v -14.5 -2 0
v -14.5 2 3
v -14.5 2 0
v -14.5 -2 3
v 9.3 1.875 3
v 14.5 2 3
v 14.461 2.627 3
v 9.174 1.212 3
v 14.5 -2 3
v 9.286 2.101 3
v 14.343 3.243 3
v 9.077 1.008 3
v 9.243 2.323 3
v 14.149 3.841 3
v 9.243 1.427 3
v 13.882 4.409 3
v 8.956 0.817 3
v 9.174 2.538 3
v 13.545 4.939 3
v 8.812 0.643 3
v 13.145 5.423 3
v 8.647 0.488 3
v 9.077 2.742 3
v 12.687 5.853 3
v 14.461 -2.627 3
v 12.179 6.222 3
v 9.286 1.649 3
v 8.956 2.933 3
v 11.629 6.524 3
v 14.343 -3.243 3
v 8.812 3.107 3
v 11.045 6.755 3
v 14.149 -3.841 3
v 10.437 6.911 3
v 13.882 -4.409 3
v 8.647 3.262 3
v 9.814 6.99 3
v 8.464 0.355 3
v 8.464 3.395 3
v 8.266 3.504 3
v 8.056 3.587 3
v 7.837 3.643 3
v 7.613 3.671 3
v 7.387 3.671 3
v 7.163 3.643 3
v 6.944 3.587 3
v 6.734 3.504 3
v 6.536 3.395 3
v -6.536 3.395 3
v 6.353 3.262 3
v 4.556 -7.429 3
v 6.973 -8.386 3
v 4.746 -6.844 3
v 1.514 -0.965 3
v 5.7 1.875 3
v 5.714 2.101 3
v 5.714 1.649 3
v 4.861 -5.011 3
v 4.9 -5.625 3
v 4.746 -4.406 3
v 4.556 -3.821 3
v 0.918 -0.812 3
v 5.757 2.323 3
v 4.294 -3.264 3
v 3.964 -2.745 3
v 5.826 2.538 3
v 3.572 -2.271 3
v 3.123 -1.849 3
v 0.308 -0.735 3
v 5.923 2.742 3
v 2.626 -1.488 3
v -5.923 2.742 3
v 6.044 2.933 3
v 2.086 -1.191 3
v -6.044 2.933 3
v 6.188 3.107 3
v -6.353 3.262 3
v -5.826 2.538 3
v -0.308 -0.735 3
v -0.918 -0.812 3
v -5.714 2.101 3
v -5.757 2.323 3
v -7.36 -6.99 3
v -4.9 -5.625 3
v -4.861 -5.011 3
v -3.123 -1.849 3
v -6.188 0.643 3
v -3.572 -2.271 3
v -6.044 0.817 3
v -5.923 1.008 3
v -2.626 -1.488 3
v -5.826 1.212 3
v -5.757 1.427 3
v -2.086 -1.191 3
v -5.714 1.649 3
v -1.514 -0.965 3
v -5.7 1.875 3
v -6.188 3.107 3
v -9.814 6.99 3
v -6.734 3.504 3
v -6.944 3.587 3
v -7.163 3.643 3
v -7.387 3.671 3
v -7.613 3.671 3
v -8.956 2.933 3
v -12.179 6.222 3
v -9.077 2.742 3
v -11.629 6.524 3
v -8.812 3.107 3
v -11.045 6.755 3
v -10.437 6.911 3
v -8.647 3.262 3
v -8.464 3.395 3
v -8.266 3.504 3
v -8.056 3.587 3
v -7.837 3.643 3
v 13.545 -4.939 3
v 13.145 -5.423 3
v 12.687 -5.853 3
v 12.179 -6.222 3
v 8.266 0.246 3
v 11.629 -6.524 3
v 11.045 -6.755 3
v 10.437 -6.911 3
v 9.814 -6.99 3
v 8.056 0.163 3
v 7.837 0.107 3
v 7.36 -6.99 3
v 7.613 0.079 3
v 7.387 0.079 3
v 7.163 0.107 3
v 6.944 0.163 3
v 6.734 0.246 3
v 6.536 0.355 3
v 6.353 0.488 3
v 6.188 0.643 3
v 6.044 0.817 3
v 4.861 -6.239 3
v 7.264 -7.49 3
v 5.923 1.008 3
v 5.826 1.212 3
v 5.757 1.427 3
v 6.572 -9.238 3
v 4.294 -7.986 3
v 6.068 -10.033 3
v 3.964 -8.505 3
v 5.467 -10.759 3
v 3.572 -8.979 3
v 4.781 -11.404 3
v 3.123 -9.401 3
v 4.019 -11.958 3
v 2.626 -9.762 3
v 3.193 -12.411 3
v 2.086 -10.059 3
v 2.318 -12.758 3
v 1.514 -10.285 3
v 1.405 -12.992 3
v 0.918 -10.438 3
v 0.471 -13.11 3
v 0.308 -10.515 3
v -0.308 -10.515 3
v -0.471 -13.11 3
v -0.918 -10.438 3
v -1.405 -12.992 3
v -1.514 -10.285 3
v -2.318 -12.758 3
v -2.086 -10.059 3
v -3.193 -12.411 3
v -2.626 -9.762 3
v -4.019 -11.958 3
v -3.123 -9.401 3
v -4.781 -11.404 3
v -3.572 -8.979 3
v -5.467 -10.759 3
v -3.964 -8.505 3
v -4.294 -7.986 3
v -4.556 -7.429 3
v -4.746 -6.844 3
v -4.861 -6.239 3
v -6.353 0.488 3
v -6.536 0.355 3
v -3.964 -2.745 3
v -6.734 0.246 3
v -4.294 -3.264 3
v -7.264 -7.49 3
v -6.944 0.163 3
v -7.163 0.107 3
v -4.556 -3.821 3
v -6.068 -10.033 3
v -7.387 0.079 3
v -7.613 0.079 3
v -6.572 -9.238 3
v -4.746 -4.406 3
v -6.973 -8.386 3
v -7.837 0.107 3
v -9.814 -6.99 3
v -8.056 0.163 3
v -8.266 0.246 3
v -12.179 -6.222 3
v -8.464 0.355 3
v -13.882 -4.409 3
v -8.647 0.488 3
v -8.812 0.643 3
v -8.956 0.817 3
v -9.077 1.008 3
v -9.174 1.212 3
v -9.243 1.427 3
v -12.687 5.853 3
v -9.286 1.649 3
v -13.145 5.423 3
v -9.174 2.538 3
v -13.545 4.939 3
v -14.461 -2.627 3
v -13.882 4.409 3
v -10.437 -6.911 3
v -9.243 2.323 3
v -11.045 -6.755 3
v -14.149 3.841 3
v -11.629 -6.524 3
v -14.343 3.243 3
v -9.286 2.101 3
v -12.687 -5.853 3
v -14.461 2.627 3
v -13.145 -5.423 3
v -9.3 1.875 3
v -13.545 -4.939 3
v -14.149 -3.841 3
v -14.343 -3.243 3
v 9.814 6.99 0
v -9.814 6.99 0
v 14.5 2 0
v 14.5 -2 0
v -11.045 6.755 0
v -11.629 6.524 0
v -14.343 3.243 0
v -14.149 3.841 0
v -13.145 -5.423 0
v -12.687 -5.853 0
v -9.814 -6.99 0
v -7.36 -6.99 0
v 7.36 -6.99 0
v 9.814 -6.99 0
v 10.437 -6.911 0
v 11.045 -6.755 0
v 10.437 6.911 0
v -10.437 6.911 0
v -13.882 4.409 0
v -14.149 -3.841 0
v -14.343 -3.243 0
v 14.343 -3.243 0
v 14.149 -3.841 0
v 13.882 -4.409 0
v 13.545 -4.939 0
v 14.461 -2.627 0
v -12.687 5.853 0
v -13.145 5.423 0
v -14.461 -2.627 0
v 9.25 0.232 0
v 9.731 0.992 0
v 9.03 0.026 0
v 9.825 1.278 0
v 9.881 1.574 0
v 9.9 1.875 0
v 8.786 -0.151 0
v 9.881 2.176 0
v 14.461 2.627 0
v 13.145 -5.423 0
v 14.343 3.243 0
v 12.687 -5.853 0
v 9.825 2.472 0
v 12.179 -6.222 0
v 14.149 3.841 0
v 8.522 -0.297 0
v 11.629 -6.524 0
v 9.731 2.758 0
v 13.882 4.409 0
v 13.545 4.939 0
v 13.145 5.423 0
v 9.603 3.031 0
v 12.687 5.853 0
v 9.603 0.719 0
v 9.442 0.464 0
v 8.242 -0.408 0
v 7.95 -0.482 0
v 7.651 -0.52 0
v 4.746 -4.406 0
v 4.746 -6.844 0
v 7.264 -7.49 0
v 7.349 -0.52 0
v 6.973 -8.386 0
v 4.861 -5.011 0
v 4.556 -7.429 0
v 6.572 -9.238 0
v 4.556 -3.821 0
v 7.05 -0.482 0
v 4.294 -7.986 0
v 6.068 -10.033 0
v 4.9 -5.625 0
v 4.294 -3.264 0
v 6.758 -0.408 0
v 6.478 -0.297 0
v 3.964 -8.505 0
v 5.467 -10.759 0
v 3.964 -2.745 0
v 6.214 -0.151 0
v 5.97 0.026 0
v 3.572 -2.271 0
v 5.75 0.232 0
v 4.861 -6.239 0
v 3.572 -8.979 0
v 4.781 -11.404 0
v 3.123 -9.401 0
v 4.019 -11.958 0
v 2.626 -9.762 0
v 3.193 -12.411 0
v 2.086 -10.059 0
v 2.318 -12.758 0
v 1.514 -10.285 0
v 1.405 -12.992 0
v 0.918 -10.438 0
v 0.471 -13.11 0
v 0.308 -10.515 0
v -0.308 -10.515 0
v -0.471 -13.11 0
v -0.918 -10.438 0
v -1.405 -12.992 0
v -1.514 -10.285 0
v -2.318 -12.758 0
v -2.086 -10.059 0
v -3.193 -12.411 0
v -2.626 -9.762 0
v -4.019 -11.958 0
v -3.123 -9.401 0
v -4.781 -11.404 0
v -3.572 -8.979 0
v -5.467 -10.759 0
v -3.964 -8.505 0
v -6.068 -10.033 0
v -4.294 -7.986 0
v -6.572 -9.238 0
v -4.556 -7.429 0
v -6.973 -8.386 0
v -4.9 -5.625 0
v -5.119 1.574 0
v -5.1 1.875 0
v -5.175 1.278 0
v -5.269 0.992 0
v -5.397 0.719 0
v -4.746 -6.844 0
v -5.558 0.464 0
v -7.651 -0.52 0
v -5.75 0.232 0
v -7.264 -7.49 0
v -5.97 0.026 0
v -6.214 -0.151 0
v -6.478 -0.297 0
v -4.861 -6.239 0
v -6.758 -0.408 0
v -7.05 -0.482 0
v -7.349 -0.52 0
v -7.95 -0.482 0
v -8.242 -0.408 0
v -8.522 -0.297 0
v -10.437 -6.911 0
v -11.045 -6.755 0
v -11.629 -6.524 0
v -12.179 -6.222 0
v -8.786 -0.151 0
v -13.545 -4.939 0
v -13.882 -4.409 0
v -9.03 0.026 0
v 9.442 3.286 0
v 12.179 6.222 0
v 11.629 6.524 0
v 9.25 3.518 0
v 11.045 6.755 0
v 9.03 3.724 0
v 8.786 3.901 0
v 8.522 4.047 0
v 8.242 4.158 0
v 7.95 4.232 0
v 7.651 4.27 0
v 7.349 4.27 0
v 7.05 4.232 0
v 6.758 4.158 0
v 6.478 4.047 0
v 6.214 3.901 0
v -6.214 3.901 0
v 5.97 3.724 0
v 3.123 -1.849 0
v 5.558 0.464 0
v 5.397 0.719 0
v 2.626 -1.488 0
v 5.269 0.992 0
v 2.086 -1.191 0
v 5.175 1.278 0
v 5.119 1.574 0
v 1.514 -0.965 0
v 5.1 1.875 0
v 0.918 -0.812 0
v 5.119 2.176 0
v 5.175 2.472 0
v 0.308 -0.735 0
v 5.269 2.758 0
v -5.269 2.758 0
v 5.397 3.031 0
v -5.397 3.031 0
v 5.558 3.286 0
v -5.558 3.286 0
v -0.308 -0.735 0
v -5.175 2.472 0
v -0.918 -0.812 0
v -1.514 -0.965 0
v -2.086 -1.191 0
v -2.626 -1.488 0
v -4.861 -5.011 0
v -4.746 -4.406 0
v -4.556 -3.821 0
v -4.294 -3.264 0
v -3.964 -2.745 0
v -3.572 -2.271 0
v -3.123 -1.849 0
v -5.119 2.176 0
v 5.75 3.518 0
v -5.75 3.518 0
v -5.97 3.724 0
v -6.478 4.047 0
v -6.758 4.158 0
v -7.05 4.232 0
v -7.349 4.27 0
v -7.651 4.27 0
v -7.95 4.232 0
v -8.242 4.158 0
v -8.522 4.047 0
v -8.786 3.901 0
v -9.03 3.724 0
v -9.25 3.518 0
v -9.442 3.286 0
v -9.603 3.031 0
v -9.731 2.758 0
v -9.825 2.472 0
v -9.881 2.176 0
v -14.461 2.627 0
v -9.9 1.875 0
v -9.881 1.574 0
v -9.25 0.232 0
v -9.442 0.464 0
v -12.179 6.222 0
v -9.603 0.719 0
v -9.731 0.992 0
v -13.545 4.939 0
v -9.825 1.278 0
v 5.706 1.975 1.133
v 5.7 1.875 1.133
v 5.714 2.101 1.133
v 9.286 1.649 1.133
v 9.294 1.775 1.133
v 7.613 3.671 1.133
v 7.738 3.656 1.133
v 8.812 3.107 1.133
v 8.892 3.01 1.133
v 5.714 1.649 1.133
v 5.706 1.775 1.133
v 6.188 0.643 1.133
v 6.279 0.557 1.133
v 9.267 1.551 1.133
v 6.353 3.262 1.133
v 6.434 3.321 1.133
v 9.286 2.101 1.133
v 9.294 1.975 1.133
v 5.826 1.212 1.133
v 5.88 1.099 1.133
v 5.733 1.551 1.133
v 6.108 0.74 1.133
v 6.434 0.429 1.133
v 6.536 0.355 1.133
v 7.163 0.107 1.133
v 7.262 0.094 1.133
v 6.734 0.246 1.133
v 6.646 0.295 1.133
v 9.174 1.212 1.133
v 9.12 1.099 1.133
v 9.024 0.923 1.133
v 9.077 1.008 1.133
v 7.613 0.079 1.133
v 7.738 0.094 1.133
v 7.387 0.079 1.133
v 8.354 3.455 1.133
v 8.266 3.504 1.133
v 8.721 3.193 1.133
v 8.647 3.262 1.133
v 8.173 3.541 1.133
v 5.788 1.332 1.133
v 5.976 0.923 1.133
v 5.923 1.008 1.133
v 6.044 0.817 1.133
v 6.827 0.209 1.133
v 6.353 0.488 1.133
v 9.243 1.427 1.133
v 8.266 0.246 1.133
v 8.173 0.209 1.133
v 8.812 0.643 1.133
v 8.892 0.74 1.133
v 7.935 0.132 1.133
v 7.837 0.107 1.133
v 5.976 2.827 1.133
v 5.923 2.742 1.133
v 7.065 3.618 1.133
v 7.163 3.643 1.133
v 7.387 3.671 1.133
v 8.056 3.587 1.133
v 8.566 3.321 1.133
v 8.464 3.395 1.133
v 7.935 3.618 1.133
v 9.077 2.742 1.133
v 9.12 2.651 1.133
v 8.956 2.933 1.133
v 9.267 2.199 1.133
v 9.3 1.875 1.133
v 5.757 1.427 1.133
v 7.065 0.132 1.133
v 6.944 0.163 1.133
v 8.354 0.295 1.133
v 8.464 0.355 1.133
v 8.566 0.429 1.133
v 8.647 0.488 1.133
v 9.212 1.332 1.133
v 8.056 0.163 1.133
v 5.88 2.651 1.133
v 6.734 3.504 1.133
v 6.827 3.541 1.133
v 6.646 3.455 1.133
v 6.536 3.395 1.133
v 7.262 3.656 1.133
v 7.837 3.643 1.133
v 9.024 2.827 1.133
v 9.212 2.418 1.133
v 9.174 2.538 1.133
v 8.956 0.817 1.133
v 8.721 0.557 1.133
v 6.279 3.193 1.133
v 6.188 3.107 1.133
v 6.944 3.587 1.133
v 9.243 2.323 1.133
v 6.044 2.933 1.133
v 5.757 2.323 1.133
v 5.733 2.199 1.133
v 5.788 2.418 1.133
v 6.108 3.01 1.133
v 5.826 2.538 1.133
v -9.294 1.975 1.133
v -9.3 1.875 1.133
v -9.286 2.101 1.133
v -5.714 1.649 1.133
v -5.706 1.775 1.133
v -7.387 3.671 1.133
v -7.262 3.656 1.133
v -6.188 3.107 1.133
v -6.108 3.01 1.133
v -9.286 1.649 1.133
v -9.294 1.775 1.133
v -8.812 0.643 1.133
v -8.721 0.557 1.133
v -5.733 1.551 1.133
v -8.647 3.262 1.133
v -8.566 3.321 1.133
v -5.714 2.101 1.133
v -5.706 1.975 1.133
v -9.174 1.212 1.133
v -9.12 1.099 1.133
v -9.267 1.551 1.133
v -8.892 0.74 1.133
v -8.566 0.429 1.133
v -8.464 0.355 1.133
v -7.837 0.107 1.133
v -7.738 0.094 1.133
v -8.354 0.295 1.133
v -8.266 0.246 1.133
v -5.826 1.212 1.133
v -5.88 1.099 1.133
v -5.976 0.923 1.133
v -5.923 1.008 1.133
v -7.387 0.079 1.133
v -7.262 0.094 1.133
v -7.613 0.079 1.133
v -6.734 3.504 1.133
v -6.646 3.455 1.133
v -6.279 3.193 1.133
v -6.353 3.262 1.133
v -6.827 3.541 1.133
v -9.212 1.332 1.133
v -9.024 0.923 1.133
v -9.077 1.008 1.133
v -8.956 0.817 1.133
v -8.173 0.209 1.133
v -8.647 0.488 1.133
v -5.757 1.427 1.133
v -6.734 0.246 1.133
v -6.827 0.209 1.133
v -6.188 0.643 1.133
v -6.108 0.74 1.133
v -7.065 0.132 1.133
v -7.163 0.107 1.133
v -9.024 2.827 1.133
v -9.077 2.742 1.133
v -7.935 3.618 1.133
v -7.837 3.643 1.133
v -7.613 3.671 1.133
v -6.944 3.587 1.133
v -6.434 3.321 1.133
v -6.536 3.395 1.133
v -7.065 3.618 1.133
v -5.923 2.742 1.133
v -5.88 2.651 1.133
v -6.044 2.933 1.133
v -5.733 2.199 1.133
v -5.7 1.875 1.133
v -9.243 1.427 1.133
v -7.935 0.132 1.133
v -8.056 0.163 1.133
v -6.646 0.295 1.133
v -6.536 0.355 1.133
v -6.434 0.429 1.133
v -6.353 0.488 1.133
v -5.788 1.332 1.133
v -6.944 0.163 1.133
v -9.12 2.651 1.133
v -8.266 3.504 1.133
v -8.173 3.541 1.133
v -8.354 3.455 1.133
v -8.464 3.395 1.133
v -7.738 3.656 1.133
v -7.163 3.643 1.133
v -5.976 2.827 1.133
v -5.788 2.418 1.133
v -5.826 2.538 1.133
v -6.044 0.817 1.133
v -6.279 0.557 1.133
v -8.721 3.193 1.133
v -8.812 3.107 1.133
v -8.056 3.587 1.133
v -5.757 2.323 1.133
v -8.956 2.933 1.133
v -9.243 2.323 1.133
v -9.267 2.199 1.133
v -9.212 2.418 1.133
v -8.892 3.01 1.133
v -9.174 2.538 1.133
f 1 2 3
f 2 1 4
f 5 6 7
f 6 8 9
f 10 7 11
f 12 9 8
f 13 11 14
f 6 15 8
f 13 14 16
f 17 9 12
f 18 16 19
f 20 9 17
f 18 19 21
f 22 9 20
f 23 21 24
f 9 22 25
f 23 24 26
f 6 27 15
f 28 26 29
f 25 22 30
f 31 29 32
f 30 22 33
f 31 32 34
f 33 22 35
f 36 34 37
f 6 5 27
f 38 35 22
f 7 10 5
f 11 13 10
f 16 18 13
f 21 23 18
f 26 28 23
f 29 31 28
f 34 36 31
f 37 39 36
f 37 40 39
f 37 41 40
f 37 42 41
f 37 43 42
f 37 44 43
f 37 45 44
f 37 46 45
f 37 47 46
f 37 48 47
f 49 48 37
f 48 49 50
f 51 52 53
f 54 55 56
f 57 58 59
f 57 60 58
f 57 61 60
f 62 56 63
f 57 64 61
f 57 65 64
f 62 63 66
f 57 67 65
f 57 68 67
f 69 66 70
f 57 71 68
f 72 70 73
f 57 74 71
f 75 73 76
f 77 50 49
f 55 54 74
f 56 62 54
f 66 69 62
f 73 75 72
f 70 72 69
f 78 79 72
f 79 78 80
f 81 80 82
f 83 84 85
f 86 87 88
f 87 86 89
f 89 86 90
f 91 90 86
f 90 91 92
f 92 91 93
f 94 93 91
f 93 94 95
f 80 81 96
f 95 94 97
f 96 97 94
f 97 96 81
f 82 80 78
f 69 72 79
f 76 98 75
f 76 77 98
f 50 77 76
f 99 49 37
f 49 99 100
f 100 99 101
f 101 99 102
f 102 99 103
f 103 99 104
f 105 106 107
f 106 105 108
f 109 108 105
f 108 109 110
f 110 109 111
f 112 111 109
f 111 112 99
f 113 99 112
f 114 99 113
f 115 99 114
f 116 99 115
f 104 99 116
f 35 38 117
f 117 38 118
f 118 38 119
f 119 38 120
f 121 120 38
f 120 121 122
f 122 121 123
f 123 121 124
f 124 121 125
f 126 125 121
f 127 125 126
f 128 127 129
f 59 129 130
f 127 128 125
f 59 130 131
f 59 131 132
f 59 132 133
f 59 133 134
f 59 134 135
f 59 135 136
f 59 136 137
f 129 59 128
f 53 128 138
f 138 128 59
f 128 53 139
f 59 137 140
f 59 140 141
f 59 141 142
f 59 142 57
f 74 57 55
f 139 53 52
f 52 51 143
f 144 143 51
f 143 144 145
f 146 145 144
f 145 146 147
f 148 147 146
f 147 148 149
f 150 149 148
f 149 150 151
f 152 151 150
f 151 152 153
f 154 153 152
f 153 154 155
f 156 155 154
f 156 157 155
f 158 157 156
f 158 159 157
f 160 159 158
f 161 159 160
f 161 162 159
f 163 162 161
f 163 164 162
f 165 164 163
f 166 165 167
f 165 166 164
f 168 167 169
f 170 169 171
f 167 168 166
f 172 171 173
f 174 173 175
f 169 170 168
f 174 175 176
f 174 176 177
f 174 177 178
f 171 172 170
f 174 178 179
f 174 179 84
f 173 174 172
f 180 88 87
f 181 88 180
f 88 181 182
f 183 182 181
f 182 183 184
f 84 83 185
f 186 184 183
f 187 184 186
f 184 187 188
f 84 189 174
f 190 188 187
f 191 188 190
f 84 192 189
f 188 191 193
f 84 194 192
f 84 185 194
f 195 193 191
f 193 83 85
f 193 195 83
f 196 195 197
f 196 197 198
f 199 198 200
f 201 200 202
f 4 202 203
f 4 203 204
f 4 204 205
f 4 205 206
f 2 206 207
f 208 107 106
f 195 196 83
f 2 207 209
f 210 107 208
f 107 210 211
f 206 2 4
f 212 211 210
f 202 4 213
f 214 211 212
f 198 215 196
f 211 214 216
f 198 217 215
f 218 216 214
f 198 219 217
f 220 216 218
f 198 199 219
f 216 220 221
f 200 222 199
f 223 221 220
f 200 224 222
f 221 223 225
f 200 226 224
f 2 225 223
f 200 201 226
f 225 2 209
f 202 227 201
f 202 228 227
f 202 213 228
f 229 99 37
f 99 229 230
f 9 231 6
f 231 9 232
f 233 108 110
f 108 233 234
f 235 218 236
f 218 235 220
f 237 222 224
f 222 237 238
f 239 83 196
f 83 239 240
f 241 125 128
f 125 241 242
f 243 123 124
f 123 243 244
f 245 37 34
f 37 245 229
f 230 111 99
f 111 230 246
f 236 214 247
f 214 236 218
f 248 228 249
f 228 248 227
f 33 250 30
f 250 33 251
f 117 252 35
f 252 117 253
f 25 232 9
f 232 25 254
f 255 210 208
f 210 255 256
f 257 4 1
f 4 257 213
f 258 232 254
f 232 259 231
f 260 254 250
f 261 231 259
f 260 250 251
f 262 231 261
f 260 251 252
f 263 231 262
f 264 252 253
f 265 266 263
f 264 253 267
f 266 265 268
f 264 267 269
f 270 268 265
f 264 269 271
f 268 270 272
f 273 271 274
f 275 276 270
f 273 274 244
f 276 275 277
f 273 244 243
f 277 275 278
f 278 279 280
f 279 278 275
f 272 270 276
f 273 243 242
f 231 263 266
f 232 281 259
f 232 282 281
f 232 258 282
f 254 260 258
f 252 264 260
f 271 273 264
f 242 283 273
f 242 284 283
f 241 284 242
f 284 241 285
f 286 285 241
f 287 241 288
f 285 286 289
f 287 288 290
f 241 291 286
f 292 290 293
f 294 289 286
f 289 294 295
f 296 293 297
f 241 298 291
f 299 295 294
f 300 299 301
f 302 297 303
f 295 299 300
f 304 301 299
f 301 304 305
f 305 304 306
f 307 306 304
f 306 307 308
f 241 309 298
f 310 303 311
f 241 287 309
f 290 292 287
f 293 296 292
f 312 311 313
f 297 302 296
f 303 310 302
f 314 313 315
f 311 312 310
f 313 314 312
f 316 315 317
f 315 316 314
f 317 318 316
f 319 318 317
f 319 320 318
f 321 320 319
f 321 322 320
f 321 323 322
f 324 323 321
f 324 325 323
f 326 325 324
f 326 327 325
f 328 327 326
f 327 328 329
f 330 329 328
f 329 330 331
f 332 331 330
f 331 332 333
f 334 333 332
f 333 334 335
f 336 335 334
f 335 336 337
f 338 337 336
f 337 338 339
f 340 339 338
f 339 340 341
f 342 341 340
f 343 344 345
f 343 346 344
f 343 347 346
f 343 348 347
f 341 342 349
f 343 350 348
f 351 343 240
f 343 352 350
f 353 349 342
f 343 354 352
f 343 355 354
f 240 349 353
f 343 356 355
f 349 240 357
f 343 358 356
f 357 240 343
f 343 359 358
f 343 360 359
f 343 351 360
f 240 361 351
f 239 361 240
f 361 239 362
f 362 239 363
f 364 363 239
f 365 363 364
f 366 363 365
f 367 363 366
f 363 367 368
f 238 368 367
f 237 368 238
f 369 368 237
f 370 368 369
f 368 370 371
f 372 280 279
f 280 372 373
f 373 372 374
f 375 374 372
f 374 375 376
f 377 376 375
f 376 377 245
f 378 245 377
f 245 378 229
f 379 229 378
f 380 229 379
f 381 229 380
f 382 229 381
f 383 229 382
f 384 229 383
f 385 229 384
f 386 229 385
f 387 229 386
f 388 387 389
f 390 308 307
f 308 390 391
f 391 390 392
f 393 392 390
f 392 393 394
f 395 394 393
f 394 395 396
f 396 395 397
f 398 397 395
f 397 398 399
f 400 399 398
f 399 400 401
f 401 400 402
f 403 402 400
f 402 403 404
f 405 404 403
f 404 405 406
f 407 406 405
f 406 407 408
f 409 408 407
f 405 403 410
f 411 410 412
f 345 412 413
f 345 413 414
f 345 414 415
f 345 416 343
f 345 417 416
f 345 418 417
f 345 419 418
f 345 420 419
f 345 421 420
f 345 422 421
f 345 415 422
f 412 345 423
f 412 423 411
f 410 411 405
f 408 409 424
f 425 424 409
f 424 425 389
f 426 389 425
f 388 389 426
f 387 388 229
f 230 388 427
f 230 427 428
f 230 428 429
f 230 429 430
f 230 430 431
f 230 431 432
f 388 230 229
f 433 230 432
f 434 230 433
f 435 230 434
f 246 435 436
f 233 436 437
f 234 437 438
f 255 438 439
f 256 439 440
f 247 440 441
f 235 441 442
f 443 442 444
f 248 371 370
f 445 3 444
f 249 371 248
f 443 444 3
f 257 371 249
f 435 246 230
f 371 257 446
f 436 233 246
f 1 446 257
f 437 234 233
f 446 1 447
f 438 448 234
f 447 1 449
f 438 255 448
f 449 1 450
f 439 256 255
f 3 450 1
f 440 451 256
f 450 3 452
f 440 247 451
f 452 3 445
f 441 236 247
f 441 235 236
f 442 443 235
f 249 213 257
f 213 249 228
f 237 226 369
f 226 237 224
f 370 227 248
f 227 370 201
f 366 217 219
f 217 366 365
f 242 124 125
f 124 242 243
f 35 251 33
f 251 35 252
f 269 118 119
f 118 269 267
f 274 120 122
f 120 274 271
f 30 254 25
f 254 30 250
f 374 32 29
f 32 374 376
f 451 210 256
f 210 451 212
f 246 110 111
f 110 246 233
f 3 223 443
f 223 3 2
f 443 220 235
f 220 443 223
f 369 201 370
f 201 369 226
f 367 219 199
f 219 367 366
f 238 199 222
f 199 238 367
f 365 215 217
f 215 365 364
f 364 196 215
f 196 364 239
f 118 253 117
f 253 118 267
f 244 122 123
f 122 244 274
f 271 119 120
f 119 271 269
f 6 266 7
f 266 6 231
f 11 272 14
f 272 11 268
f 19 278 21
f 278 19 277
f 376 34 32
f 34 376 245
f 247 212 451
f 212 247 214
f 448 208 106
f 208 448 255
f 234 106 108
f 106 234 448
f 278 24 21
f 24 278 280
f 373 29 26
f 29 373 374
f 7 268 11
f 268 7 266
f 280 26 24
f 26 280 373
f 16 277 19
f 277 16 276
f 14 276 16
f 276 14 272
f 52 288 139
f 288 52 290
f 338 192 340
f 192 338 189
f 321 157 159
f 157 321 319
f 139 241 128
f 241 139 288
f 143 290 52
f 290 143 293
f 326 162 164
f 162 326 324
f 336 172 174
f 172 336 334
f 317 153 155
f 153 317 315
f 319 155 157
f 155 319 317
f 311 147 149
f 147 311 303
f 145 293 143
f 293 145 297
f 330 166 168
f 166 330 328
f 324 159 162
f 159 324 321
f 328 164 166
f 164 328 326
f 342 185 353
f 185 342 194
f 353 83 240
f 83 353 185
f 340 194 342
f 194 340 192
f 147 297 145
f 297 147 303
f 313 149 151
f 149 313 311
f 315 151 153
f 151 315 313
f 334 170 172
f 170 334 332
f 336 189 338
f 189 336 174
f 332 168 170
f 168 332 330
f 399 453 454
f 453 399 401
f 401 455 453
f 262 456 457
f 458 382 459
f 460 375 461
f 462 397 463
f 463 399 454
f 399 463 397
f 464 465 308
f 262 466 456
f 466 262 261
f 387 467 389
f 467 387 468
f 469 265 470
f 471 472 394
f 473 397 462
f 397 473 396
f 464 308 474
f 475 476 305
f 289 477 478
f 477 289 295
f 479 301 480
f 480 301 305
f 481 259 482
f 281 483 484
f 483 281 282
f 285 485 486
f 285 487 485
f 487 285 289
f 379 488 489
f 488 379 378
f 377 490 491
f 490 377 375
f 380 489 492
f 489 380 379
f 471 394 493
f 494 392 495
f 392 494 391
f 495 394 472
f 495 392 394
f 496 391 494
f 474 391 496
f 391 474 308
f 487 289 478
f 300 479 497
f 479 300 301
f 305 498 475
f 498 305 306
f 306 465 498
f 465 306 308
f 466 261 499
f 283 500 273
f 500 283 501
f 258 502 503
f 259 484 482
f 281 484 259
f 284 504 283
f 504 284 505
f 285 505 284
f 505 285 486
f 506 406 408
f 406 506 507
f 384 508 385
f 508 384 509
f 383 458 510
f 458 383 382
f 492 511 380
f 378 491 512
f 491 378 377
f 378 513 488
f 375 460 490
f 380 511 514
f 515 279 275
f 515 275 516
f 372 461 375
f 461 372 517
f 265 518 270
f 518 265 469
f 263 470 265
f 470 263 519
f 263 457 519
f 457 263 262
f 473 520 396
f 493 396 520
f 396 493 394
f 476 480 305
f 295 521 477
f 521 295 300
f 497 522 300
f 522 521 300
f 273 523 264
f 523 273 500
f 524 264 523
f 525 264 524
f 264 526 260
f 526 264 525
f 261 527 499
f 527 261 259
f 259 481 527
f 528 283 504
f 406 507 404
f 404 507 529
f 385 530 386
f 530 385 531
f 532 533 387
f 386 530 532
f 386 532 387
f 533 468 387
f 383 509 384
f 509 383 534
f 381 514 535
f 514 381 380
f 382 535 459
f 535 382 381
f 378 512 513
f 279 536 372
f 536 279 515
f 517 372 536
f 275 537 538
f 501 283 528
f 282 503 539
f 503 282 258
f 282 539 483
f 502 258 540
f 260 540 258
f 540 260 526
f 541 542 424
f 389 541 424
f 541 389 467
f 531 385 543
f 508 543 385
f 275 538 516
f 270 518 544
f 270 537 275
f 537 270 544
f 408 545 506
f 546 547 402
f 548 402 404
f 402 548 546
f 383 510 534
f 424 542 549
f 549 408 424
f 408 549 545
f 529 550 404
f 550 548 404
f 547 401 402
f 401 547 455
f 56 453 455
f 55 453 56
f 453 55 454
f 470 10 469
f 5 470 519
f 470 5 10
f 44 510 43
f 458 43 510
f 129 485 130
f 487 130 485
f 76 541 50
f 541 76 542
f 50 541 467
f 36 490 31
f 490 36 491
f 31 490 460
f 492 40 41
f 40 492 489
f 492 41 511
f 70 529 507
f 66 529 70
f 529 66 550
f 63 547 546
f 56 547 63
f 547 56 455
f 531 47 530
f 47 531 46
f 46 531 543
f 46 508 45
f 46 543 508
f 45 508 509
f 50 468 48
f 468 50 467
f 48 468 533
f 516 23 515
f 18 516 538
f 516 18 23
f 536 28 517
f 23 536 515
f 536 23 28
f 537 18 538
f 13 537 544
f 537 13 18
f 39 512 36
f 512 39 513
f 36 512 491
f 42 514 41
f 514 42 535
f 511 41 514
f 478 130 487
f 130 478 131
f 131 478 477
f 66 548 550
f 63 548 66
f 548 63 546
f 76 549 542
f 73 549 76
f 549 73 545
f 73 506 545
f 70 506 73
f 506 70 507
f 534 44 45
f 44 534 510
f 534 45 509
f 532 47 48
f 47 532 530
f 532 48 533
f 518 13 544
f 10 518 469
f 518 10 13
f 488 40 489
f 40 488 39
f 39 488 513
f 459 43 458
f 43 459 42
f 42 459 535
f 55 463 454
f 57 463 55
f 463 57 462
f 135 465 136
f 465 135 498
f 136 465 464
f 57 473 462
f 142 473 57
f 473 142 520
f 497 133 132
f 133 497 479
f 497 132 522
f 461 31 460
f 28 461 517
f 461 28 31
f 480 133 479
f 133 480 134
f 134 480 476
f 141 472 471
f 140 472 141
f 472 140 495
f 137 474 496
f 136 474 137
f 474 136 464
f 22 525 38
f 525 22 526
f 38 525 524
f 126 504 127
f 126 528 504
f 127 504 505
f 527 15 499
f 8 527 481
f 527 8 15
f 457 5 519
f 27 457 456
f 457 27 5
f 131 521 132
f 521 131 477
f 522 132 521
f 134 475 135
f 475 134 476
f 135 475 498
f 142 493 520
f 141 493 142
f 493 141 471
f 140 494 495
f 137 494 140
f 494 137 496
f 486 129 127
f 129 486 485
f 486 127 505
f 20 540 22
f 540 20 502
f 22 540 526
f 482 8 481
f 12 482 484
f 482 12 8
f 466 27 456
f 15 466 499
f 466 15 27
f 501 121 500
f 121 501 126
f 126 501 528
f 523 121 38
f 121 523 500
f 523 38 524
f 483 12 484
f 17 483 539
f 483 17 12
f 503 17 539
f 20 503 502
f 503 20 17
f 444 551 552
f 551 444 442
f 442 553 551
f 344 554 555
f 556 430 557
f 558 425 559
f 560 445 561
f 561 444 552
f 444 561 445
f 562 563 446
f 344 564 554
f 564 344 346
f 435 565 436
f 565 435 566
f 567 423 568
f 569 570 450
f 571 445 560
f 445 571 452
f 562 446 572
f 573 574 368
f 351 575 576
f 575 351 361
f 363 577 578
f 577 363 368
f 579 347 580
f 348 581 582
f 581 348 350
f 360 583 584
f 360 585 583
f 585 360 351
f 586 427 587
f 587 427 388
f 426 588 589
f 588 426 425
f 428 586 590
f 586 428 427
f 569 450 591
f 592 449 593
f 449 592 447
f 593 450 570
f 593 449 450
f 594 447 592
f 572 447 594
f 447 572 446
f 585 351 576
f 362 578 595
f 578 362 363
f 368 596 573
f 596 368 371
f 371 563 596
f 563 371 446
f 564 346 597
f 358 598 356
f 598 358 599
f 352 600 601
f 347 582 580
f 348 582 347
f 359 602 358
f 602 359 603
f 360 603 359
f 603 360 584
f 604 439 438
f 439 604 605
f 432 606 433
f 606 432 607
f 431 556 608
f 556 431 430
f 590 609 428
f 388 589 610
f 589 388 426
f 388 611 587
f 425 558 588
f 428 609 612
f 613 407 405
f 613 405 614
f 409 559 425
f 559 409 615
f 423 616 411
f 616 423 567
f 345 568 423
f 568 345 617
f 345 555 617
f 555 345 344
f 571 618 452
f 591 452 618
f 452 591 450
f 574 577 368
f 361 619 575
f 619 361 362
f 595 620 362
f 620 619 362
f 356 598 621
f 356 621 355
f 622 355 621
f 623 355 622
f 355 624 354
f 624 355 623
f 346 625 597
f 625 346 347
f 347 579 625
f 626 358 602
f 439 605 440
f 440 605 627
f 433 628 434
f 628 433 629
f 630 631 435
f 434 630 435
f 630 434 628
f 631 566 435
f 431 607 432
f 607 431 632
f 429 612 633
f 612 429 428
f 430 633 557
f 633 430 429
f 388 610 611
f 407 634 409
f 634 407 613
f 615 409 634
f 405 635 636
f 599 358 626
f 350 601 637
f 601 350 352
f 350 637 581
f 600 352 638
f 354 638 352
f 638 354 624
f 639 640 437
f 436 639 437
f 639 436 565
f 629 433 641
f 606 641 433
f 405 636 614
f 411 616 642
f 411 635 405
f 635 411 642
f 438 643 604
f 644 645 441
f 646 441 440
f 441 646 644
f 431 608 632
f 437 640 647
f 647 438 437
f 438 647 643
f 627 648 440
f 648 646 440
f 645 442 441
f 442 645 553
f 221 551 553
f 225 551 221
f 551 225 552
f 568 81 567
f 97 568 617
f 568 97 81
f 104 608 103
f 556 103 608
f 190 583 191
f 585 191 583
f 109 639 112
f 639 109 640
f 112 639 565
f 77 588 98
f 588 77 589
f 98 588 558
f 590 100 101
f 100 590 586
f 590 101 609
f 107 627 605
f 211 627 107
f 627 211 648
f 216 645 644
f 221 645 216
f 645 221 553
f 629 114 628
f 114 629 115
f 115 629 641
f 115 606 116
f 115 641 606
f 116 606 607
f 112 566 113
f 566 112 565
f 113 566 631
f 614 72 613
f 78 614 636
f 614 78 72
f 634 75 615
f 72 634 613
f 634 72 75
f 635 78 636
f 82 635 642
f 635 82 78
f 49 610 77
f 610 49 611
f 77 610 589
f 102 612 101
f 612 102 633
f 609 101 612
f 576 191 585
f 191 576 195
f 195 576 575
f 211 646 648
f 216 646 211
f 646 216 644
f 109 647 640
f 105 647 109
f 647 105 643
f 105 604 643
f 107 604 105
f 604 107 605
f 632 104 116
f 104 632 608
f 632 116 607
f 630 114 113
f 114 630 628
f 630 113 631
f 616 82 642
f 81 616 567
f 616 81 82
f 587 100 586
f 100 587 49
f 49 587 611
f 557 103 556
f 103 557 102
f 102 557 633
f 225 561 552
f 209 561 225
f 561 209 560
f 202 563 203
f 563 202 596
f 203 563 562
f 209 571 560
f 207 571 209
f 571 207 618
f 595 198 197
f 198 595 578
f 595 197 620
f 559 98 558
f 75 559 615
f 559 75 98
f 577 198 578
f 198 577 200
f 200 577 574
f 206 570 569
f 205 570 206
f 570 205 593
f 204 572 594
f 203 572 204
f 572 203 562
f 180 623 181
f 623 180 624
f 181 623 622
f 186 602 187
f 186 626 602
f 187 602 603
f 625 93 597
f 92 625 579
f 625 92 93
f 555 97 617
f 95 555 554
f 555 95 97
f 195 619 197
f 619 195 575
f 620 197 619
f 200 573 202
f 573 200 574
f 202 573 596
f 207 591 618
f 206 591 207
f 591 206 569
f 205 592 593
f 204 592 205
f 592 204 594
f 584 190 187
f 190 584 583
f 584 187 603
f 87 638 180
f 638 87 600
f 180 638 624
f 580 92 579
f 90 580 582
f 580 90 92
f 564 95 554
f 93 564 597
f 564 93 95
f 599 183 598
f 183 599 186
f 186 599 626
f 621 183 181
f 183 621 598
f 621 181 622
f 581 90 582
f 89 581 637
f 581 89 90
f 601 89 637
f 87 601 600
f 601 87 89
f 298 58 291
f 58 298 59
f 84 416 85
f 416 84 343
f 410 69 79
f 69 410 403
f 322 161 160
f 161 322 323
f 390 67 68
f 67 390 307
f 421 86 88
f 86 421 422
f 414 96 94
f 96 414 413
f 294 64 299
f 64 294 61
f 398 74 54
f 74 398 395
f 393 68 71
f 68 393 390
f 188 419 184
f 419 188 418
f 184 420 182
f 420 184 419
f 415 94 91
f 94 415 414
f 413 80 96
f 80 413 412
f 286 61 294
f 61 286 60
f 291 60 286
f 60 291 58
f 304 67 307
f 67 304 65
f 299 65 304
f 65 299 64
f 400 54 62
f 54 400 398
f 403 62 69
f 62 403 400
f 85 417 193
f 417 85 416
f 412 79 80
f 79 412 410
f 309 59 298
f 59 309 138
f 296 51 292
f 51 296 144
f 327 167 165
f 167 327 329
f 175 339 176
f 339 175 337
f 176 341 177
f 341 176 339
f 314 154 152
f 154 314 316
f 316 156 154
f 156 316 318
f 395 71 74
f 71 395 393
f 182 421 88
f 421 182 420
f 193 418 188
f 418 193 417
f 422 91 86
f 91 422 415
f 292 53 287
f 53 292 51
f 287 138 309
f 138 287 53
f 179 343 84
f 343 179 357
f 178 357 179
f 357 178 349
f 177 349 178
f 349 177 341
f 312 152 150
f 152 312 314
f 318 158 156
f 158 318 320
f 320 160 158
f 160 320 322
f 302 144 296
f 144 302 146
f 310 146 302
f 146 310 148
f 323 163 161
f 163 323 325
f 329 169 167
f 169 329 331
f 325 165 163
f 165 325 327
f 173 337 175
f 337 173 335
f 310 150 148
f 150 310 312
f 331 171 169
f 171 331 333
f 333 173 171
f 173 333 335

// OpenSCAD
$fn = 50;


difference() {
	union() {
		hull() {
			translate(v = [-9.5000000000, 2.0000000000, 0]) {
				cylinder(h = 3, r = 5);
			}
			translate(v = [9.5000000000, 2.0000000000, 0]) {
				cylinder(h = 3, r = 5);
			}
			translate(v = [-9.5000000000, -2.0000000000, 0]) {
				cylinder(h = 3, r = 5);
			}
			translate(v = [9.5000000000, -2.0000000000, 0]) {
				cylinder(h = 3, r = 5);
			}
		}
		translate(v = [0, -5.6250000000, 0.0000000000]) {
			cylinder(h = 3, r = 7.5000000000);
		}
	}
	union() {
		translate(v = [7.5000000000, 1.8750000000, 0]) {
			rotate(a = [0, 180, 0]) {
				difference() {
					union() {
						#translate(v = [0, 0, -1.7000000000]) {
							cylinder(h = 1.7000000000, r1 = 1.5000000000, r2 = 2.4000000000);
						}
						#translate(v = [0, 0, -3.0000000000]) {
							cylinder(h = 3, r = 1.5000000000);
						}
						#translate(v = [0, 0, -3.0000000000]) {
							cylinder(h = 3, r = 1.8000000000);
						}
						#translate(v = [0, 0, -3.0000000000]) {
							cylinder(h = 3, r = 1.5000000000);
						}
					}
					union();
				}
			}
		}
		translate(v = [-7.5000000000, 1.8750000000, 0]) {
			rotate(a = [0, 180, 0]) {
				difference() {
					union() {
						#translate(v = [0, 0, -1.7000000000]) {
							cylinder(h = 1.7000000000, r1 = 1.5000000000, r2 = 2.4000000000);
						}
						#translate(v = [0, 0, -3.0000000000]) {
							cylinder(h = 3, r = 1.5000000000);
						}
						#translate(v = [0, 0, -3.0000000000]) {
							cylinder(h = 3, r = 1.8000000000);
						}
						#translate(v = [0, 0, -3.0000000000]) {
							cylinder(h = 3, r = 1.5000000000);
						}
					}
					union();
				}
			}
		}
		#translate(v = [0, -5.6250000000, 0]) {
			cylinder(h = 3, r = 4.9000000000);
		}
	}
}
